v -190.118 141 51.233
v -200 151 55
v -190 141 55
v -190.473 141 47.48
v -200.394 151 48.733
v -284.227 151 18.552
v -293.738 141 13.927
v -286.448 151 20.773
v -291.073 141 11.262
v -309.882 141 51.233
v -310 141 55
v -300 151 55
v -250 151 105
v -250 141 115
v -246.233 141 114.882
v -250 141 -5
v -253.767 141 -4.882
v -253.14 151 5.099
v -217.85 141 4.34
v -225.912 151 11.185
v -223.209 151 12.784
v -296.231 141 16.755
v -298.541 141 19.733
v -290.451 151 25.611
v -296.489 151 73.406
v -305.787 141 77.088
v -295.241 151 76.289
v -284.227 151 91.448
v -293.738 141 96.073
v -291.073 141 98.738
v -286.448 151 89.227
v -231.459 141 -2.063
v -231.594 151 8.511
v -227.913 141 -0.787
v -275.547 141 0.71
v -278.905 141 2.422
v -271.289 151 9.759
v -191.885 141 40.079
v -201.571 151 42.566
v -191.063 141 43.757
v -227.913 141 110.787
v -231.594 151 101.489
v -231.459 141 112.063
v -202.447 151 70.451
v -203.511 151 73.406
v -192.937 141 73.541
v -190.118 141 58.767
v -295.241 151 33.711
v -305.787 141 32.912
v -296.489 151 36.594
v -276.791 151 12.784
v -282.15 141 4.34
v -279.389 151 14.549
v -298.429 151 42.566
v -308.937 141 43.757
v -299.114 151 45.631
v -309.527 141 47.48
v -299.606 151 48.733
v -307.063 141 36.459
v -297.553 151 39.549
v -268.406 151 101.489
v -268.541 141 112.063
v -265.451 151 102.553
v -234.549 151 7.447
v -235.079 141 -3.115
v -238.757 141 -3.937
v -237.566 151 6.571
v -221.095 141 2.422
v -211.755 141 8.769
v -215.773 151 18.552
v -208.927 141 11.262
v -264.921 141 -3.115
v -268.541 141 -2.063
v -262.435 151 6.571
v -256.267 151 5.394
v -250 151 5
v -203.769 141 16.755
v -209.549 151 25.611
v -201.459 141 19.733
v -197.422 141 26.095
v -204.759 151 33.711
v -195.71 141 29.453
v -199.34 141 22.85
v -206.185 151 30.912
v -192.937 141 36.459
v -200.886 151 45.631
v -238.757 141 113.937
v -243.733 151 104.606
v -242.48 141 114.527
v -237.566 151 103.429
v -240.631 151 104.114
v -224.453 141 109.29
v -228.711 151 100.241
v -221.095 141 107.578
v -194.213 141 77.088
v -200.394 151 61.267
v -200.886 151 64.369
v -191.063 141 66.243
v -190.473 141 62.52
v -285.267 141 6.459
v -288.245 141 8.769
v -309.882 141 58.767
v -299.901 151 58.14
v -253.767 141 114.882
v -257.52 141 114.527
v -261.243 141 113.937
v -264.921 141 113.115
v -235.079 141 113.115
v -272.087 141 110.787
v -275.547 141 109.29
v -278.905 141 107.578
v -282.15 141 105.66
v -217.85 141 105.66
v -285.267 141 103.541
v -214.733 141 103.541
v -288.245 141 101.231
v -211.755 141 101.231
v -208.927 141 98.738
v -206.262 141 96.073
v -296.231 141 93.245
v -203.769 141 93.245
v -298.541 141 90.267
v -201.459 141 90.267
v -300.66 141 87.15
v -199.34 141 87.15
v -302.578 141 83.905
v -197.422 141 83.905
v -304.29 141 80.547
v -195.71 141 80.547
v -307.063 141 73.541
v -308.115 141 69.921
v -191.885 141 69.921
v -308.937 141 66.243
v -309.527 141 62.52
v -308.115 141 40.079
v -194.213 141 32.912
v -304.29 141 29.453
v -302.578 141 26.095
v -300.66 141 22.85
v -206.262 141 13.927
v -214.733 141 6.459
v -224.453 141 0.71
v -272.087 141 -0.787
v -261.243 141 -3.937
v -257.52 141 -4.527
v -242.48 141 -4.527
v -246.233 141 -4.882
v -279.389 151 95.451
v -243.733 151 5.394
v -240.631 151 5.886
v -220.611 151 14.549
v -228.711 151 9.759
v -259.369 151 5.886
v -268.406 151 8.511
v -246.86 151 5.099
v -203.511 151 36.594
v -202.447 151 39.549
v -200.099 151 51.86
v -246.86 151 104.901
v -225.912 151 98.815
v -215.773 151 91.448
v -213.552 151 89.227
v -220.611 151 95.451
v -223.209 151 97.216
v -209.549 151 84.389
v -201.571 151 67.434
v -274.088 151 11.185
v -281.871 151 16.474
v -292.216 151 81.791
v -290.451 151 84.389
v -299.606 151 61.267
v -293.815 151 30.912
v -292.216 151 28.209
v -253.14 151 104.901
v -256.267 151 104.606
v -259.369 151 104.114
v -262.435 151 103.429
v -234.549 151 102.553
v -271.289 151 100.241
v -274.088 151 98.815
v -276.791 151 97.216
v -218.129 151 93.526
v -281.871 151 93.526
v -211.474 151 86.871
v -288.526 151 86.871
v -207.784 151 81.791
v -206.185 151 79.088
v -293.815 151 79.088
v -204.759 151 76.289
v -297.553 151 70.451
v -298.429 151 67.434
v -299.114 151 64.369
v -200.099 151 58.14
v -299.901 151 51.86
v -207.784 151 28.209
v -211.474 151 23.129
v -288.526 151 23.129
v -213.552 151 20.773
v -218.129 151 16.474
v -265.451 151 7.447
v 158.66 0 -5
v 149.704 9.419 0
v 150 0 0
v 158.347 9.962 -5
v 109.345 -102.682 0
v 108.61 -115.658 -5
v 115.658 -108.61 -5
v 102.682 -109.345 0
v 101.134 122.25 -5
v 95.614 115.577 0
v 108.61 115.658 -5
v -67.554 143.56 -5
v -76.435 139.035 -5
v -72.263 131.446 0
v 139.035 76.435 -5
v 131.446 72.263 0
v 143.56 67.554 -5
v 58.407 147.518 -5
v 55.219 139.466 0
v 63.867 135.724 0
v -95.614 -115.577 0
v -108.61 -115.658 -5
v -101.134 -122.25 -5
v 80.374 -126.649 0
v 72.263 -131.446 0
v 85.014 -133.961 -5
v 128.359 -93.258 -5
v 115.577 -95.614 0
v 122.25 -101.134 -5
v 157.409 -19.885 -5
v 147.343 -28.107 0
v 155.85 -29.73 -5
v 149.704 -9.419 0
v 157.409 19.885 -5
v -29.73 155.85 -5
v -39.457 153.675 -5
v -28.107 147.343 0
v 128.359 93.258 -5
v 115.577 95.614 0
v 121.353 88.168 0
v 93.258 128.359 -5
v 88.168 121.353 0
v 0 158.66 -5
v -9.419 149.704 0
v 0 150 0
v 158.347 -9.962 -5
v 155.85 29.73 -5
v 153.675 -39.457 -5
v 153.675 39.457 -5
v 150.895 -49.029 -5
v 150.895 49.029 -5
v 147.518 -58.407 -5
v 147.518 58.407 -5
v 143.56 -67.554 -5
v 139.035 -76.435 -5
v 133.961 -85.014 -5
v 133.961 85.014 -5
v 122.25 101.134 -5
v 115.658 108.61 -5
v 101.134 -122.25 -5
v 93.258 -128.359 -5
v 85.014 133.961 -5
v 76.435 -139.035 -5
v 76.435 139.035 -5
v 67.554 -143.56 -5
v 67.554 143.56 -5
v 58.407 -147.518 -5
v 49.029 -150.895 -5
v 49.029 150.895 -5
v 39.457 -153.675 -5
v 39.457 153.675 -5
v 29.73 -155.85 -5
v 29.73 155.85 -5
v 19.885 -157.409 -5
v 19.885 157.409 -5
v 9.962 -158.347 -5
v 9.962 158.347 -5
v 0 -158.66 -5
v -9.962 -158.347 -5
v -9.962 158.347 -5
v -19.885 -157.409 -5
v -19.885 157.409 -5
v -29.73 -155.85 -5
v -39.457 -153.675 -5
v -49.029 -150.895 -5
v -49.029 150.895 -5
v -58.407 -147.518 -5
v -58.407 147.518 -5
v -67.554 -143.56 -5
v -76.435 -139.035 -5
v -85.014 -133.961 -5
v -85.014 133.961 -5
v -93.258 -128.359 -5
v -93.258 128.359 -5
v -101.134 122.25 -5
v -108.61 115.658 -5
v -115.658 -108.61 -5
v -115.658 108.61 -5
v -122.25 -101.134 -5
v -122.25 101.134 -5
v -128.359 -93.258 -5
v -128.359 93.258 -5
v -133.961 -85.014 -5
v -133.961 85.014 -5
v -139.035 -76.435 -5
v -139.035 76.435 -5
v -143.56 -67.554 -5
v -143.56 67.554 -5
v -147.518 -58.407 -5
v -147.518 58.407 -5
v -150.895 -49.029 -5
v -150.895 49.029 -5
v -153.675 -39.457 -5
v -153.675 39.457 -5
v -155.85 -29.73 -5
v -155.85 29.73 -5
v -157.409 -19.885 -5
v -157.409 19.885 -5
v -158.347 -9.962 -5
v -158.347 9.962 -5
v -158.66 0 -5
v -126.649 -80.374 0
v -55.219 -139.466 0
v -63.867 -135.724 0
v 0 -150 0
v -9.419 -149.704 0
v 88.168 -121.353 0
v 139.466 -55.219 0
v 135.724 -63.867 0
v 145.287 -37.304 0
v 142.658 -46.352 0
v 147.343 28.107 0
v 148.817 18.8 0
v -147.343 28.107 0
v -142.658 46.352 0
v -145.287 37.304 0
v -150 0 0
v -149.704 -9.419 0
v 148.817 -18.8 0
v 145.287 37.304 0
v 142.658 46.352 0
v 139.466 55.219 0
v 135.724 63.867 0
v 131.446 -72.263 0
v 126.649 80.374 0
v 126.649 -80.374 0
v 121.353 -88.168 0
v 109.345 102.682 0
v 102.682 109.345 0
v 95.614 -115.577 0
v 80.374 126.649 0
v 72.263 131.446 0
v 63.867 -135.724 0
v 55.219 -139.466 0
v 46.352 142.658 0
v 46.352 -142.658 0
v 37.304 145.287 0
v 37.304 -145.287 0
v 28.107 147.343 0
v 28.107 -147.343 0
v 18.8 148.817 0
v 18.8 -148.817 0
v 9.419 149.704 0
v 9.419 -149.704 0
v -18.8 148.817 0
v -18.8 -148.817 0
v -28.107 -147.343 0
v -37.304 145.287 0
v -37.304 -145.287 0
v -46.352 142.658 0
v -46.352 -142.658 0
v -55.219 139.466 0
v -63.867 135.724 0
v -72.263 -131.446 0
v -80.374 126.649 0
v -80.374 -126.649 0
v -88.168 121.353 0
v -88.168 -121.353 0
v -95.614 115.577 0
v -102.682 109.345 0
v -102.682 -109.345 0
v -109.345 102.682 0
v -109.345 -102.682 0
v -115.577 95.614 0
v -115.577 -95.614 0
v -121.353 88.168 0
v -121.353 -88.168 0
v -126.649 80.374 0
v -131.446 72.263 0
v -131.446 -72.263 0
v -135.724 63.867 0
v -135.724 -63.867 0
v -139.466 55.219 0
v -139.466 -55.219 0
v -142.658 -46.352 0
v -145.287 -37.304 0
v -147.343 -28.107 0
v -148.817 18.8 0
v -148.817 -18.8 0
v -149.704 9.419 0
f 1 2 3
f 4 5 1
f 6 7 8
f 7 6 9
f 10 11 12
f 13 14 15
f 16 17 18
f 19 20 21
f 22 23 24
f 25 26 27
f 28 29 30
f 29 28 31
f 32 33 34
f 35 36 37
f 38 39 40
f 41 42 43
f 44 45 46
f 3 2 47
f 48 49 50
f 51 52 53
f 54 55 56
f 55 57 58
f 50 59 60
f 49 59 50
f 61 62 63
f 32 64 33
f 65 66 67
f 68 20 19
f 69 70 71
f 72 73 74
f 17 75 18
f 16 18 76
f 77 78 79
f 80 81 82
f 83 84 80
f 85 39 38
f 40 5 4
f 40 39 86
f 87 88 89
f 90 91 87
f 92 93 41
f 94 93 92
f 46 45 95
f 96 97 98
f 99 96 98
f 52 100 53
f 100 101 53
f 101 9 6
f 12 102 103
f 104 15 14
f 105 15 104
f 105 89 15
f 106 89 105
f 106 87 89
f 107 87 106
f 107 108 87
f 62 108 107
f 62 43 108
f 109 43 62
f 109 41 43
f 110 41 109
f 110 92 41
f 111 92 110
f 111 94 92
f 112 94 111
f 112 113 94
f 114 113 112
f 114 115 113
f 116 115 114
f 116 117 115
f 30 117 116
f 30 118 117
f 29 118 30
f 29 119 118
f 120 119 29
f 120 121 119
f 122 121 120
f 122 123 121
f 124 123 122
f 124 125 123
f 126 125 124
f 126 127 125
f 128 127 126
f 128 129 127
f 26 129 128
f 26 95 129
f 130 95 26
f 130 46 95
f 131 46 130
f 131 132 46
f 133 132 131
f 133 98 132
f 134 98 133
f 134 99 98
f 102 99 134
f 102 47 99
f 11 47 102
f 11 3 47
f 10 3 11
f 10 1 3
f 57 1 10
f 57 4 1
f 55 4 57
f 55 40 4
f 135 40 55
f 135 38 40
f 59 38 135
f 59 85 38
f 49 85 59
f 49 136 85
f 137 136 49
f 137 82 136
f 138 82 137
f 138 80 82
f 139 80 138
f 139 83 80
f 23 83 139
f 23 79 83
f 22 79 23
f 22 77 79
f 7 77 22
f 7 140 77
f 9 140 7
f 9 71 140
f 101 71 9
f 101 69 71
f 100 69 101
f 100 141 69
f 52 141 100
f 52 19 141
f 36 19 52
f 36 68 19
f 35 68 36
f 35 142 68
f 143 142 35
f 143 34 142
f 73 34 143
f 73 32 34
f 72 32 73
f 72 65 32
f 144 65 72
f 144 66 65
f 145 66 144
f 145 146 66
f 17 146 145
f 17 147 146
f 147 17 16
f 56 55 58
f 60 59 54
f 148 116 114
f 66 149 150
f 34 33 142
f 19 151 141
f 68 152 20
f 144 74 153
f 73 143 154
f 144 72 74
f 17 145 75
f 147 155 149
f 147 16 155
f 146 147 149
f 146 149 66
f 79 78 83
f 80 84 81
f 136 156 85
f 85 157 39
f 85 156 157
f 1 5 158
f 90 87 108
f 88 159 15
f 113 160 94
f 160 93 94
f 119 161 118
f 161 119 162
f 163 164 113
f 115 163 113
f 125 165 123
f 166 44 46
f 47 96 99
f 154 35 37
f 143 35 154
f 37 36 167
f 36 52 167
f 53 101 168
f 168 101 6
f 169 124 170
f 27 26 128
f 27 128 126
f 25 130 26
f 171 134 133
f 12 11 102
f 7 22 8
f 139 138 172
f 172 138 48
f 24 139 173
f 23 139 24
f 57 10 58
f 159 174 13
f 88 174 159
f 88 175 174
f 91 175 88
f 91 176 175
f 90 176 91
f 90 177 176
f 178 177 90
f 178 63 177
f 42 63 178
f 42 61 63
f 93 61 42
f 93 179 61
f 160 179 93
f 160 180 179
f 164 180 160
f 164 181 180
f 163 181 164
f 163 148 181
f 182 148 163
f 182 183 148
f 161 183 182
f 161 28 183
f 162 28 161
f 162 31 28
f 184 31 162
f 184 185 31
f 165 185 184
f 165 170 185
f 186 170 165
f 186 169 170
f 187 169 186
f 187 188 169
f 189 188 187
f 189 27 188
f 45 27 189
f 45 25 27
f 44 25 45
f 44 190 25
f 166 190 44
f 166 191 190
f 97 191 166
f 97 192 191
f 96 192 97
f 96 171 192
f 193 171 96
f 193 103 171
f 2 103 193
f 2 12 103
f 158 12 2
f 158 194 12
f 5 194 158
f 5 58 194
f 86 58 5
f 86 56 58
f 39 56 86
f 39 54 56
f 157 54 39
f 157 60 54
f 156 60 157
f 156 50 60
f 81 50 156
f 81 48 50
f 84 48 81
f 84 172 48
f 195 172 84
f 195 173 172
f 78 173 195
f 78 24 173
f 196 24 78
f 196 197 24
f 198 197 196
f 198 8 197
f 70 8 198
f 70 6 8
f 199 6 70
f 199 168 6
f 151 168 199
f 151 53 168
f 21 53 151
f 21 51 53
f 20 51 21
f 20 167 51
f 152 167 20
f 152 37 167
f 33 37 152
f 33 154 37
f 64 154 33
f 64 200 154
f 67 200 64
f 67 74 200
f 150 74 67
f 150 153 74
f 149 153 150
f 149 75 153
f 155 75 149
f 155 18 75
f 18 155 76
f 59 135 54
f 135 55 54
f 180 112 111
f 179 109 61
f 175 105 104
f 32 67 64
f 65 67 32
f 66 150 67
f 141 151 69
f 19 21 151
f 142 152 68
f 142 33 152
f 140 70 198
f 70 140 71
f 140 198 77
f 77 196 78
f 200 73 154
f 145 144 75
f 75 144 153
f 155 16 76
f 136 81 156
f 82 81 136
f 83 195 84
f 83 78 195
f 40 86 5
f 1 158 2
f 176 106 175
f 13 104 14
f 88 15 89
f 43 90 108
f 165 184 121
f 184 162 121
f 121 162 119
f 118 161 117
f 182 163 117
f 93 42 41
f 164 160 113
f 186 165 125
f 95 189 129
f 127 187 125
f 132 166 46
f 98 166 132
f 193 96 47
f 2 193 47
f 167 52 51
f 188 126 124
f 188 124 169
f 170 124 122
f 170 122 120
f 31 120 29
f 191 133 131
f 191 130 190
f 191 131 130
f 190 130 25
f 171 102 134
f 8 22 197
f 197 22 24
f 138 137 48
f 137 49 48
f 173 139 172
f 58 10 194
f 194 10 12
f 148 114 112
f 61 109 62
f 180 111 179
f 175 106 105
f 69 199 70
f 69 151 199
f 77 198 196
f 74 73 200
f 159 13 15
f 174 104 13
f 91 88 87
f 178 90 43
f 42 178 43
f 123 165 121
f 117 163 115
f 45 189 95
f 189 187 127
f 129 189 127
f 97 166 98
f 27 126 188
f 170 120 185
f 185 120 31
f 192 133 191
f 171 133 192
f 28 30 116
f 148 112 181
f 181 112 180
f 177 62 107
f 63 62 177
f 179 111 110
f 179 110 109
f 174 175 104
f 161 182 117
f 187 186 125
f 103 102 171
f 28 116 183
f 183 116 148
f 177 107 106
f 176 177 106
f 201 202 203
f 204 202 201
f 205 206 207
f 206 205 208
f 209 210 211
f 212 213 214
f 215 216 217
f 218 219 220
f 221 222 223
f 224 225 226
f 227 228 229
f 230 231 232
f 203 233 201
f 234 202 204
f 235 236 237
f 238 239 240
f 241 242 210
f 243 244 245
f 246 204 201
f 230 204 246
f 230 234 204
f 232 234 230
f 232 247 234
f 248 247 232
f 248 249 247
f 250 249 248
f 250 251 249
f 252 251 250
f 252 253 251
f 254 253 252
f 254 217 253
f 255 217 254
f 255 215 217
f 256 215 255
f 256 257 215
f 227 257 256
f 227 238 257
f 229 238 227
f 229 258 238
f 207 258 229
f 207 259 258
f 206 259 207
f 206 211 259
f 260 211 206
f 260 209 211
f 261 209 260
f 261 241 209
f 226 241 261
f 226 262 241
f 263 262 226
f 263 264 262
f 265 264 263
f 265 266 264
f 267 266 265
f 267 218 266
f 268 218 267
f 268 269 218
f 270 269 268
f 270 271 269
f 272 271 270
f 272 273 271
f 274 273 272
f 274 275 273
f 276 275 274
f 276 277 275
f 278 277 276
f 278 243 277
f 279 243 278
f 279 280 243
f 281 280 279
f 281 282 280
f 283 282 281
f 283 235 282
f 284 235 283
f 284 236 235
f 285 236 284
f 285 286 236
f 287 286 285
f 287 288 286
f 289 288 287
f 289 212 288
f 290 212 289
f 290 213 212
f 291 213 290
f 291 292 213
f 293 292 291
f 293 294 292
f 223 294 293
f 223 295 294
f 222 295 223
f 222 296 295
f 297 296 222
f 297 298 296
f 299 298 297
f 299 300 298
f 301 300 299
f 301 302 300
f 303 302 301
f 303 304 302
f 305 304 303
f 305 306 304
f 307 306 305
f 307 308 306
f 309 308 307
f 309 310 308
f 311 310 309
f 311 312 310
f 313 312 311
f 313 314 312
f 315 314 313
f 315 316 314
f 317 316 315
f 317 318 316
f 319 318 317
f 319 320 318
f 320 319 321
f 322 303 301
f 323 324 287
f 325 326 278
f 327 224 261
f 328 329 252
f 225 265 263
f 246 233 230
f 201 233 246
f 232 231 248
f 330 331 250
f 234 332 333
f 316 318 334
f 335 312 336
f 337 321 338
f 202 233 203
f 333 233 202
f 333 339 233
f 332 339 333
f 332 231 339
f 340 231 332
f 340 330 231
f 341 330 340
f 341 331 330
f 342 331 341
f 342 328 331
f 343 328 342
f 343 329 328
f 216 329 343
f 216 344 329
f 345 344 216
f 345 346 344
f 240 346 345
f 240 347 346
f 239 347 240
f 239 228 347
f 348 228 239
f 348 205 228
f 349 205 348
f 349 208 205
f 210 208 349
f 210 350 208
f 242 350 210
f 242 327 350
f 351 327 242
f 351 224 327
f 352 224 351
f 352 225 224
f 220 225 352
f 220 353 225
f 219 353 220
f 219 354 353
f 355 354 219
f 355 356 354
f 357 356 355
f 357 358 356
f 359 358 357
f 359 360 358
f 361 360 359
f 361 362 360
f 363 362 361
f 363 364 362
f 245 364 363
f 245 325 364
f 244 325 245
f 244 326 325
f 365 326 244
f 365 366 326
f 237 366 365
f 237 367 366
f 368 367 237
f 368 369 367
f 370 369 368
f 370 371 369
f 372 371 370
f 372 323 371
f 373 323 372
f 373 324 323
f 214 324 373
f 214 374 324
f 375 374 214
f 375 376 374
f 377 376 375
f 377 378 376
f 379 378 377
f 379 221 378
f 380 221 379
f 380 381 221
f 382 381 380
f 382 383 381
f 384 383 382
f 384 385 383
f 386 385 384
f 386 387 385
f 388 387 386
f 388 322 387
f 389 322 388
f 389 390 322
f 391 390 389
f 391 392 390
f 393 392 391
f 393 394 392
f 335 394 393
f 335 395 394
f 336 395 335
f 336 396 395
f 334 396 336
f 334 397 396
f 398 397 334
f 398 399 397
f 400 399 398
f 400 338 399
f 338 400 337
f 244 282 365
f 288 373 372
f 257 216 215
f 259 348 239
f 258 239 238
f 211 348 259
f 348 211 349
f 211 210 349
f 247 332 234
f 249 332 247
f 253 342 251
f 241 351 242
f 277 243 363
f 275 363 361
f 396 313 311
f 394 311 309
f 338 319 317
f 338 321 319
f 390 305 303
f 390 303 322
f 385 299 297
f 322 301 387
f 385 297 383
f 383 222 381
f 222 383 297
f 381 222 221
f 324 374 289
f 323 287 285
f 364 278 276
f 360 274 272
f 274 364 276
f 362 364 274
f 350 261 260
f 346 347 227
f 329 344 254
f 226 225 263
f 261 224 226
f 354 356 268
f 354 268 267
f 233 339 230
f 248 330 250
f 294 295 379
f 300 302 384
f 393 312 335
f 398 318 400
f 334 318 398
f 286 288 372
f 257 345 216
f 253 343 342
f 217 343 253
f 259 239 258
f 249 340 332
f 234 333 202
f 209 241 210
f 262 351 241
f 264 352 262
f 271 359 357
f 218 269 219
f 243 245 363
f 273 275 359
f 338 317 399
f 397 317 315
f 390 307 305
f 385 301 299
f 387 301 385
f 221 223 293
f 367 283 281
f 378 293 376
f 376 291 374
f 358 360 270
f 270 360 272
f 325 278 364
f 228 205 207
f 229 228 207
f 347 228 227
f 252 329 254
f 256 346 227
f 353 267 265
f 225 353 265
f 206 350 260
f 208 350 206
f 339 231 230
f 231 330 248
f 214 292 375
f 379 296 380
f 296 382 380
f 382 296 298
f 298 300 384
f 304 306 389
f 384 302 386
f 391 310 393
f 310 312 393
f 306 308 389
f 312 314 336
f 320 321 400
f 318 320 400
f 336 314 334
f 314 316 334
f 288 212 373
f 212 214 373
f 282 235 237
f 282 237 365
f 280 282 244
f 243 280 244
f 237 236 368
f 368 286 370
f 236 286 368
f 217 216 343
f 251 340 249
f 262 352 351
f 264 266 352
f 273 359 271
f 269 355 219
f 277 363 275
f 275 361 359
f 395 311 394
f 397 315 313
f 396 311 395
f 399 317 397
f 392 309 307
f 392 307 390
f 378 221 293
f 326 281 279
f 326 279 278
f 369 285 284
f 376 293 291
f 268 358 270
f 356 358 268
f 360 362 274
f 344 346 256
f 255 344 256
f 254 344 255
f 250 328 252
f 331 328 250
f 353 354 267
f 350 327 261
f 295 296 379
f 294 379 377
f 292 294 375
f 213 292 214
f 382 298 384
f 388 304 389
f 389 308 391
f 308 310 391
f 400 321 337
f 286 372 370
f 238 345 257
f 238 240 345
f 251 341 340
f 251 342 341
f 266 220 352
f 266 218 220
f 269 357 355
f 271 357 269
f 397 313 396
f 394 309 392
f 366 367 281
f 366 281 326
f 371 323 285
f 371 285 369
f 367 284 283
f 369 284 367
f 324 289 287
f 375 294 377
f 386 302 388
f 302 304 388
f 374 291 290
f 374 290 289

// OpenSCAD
$fn = 100;

translate([-250, 151, 55])
    rotate([-90, 0, 0])
        translate([0, 0, -10])
            cylinder(10, 60, 50, false);

translate([0, 0, 0])
    rotate([0, 0, 0])
        translate([0, 0, -5])
            cylinder(5, 158.66, 150, false);
